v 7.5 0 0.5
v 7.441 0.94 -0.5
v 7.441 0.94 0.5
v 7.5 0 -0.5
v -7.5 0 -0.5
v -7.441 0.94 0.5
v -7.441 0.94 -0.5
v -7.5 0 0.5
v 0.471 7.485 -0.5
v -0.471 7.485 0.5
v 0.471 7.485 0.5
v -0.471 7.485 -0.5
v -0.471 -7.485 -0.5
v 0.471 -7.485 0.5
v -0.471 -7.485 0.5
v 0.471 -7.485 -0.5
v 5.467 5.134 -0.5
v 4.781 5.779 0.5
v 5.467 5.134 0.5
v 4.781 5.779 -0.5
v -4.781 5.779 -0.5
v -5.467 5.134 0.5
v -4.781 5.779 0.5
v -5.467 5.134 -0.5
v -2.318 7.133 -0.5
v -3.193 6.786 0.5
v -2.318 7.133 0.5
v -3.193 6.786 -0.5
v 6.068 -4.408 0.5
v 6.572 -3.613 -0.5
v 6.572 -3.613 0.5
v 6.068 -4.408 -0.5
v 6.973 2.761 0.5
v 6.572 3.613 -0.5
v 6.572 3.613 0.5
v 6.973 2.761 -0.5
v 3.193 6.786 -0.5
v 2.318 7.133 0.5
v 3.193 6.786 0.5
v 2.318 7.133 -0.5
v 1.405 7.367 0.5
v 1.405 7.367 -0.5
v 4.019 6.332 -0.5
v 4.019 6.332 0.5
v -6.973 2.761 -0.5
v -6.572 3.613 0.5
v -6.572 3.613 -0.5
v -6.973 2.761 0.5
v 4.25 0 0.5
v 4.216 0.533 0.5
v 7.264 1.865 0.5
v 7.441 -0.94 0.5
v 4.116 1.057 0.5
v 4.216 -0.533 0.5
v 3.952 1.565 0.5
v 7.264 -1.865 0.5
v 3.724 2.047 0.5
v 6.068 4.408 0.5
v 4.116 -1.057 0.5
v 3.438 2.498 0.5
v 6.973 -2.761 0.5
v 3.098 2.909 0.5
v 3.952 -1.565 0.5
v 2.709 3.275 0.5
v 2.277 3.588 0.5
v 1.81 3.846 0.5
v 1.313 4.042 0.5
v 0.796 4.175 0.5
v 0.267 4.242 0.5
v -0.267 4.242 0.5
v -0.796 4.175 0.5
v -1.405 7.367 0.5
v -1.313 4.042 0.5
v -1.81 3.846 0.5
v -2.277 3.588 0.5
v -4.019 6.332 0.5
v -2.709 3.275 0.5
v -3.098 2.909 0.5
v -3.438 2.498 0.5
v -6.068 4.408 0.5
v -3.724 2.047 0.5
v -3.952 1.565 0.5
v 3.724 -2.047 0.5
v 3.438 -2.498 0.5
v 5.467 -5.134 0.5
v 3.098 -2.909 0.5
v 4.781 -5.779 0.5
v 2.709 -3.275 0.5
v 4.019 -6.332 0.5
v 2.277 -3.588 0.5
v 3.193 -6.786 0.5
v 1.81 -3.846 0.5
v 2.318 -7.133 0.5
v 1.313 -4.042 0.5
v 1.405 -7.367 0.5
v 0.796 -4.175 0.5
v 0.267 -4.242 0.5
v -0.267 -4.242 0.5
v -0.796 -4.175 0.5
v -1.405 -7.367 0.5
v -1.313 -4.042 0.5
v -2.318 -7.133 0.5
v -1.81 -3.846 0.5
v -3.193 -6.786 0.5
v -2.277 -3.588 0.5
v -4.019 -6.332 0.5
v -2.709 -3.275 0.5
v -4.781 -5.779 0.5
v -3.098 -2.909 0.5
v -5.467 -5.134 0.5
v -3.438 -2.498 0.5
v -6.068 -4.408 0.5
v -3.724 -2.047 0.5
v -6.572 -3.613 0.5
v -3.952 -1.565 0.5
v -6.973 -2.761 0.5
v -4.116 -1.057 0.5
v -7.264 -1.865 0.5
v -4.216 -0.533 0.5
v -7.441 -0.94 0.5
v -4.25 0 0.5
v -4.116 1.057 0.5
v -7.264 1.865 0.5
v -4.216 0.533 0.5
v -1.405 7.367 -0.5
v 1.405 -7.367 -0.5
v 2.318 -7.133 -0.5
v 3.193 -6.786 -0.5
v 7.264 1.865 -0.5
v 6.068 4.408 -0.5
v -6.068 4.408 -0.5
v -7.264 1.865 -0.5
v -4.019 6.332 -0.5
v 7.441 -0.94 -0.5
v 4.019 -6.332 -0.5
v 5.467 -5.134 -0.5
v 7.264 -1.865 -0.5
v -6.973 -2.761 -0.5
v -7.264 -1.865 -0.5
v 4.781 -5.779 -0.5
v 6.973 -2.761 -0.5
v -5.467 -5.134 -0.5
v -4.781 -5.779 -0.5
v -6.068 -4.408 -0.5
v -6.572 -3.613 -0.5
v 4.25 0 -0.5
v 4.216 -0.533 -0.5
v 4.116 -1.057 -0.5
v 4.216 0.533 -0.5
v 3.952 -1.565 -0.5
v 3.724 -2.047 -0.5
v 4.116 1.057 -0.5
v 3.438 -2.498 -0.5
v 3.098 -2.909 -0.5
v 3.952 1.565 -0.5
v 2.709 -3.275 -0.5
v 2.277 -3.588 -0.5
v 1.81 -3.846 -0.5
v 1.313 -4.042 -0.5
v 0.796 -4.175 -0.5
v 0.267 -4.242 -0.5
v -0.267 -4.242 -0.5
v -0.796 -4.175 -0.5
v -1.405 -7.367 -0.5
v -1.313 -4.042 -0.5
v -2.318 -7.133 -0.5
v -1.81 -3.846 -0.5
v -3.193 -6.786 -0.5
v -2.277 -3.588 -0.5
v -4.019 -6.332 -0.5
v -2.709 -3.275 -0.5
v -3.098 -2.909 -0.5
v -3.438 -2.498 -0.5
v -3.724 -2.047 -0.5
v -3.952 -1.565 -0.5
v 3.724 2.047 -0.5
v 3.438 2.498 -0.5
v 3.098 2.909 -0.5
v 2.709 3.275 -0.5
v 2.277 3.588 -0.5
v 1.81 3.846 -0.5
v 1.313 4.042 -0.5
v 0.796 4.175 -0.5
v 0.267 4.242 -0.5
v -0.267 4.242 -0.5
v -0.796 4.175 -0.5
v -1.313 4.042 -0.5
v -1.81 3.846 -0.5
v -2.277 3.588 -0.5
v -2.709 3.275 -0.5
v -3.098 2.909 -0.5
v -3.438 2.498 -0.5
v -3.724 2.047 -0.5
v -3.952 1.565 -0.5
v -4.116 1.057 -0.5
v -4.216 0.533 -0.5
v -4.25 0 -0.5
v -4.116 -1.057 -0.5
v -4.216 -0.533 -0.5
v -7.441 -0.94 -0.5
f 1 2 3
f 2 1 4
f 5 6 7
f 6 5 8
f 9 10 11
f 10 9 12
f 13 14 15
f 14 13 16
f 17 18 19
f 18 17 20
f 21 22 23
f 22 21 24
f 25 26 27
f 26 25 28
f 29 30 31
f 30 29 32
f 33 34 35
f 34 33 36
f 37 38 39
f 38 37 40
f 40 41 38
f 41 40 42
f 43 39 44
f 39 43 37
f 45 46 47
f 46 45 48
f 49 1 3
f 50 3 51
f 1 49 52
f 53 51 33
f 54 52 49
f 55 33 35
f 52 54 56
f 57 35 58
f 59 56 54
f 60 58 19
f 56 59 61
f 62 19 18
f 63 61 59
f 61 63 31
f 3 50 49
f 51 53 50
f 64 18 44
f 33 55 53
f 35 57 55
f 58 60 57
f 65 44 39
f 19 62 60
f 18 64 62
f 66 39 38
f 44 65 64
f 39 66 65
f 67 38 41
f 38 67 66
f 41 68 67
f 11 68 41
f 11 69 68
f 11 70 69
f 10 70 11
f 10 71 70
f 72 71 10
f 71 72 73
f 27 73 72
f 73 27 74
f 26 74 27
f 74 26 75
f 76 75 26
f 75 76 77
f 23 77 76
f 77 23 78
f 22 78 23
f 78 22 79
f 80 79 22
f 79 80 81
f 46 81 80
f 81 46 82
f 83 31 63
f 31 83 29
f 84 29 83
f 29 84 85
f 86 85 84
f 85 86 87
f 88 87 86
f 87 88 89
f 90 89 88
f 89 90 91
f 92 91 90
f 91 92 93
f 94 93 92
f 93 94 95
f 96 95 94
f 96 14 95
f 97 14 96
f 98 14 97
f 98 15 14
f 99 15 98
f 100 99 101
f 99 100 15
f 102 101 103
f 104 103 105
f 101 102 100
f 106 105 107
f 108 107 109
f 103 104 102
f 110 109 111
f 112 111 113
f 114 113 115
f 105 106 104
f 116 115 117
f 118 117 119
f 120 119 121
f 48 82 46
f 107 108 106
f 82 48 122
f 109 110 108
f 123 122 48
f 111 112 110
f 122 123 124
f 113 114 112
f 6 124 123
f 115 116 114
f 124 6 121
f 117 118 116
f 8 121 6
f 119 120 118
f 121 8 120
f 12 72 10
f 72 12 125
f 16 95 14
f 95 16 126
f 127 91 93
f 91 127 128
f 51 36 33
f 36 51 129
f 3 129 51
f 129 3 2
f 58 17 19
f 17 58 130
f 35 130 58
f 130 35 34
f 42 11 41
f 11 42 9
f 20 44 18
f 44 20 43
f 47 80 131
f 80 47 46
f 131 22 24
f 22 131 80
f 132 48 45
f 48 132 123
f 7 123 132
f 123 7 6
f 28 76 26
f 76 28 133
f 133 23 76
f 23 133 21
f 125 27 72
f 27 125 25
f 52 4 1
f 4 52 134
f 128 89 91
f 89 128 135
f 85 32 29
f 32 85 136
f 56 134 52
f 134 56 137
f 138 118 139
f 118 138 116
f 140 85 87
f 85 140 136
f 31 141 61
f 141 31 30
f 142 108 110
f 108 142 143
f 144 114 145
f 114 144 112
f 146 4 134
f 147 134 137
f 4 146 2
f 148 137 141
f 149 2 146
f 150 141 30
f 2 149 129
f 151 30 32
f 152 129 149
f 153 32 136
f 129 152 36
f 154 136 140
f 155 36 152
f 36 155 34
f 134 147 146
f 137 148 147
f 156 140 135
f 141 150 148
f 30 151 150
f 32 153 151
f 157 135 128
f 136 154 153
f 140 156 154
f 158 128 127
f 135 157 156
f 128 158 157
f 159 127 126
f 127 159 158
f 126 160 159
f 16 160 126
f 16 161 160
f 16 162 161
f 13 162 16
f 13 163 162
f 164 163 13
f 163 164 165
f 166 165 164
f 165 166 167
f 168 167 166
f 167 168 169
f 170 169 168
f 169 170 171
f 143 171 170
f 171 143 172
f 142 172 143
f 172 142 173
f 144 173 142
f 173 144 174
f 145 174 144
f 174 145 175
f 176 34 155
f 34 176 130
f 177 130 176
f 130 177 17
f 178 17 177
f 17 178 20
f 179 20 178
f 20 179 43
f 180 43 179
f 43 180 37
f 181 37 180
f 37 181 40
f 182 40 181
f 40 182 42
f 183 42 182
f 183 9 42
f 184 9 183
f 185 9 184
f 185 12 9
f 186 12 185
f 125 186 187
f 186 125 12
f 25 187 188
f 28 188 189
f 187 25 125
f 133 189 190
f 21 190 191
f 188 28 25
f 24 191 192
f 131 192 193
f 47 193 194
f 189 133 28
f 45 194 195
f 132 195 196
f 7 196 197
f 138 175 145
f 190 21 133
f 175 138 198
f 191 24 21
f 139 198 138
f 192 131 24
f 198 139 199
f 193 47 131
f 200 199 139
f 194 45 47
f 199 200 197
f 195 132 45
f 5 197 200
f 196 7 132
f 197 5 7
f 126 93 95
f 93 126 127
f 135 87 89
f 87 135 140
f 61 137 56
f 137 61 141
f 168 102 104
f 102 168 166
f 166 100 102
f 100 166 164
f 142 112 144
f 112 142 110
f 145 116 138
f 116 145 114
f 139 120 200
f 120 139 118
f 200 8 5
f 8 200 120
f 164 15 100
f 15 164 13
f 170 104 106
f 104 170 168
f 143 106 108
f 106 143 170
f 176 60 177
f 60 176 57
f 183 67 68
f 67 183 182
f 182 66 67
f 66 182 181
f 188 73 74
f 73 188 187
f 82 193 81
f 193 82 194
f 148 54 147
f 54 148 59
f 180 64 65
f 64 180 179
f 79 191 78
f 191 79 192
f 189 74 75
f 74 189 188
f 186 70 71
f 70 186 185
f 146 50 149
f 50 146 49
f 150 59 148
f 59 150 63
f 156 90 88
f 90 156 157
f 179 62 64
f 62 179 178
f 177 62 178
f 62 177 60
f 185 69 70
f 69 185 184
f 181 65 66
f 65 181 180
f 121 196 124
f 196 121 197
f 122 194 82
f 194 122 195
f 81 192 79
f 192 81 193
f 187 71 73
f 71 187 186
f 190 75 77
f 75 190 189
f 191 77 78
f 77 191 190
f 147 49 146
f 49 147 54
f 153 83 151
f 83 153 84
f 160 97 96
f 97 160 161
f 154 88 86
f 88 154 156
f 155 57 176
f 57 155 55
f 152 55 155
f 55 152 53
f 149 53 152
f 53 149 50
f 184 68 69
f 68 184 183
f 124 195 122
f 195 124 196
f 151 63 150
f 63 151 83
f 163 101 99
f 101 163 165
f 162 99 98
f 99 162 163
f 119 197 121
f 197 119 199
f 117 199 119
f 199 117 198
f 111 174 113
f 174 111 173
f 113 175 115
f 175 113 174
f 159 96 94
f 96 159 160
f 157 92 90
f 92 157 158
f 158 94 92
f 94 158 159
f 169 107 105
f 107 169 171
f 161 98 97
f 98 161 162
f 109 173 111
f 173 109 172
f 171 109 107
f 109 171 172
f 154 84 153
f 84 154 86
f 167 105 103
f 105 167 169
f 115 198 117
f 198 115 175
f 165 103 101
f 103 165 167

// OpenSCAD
$fn = 50;


difference() {
	union() {
		translate(v = [0, 0, -0.5000000000]) {
			cylinder(h = 1, r = 7.5000000000);
		}
	}
	union() {
		translate(v = [0, 0, -100.0000000000]) {
			cylinder(h = 200, r = 4.2500000000);
		}
	}
}
